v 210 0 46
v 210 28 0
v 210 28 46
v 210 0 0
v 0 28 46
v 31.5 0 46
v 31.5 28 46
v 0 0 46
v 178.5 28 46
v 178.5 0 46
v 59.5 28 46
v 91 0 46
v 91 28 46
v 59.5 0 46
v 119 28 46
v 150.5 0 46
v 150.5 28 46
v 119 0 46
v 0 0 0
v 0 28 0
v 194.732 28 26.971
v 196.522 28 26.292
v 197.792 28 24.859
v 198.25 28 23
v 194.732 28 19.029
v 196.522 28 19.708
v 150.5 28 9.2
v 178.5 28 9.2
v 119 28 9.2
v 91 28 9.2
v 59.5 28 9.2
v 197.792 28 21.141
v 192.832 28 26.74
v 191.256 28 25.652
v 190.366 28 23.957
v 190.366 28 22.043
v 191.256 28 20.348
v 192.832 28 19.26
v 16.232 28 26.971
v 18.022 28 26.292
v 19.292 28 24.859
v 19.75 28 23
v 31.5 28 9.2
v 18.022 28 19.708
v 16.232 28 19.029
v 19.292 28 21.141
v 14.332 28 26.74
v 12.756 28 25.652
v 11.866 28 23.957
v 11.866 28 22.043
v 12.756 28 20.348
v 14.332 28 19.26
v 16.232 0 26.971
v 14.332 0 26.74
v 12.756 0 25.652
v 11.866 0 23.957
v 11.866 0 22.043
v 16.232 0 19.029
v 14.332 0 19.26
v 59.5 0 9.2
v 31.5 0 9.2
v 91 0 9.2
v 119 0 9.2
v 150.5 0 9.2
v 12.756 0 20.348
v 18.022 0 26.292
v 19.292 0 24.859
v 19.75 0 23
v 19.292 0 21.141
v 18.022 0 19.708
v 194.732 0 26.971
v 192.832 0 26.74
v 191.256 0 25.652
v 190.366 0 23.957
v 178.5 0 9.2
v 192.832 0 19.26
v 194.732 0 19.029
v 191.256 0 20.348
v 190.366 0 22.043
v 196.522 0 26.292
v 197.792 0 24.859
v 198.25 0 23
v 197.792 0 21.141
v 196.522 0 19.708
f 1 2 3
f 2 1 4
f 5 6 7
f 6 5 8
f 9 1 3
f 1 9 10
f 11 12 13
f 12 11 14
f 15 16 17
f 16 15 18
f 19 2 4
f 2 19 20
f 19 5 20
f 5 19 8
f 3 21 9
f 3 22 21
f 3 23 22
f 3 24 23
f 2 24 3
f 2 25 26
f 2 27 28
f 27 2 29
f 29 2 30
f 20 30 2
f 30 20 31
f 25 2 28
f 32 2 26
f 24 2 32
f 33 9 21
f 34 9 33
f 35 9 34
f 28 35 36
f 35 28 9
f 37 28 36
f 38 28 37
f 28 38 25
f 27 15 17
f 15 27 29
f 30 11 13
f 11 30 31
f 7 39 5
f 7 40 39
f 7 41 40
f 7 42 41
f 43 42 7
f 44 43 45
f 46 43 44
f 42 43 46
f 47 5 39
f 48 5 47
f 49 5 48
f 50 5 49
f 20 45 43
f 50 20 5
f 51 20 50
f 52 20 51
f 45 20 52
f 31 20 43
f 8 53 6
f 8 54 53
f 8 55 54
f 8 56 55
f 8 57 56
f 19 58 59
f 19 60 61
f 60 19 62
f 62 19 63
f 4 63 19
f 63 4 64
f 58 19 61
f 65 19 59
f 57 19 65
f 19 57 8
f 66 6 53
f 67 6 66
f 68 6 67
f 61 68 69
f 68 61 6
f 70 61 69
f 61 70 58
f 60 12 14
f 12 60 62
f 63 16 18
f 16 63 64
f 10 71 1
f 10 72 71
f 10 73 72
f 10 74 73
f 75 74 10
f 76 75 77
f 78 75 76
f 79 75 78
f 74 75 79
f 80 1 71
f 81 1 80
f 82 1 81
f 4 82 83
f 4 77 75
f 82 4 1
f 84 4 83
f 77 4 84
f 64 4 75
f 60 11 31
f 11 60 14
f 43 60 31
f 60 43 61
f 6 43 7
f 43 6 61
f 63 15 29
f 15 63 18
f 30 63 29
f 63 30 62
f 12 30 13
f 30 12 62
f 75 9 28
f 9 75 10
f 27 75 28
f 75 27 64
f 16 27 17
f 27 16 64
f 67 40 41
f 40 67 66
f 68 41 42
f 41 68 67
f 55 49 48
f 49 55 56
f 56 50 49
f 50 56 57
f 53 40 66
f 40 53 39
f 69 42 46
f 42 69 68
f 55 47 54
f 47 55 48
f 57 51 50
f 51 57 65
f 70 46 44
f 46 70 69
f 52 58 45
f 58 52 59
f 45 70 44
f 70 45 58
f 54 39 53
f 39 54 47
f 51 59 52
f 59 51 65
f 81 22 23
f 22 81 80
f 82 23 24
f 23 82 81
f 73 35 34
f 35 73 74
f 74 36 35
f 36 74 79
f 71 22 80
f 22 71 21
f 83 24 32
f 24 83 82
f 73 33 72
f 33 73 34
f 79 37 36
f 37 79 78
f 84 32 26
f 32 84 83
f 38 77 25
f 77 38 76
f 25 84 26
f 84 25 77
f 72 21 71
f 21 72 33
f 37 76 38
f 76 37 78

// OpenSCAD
bar_w = 210;
bar_d = 28;
bar_h = 46;

cut_w = 28;
cut_h = bar_h - (bar_h * (20/100)); // 20%
cut_d = 32;

c1_pos = (bar_w - (3 * cut_w)) / 4;
c2_pos = c1_pos + cut_w + c1_pos;
c3_pos = c2_pos + cut_w + c1_pos;

thread_hole = 8;
t1_pos = [
    (c1_pos / 2),
    (bar_h / 2),
    (-bar_d - 1)
];

t2_pos = [
    ((c3_pos + cut_w) + c1_pos / 2),
    (bar_h / 2),
    (-bar_d - 1)
];




difference() {
    cube(size = [bar_w,bar_d,bar_h], center=false);
    
    color("blue")
    translate([c1_pos,-1,bar_h - cut_h])
    cube(size = [cut_w, cut_d, cut_h+1], center=false);
    
    color("blue")
    translate([c2_pos,-1,bar_h - cut_h])
    cube(size = [cut_w, cut_d, cut_h+1], center=false);
    
    color("blue")
    translate([c3_pos,-1,bar_h - cut_h])
    cube(size = [cut_w, cut_d, cut_h+1], center=false);
    
    // T1
    rotate([90,0,0])
    translate(t1_pos)
    color("red")
    cylinder(d = thread_hole,h = bar_d + 2);
    
    // T2
    rotate([90,0,0])
    translate(t2_pos)
    color("red")
    cylinder(d = thread_hole,h = bar_d + 2);
}
